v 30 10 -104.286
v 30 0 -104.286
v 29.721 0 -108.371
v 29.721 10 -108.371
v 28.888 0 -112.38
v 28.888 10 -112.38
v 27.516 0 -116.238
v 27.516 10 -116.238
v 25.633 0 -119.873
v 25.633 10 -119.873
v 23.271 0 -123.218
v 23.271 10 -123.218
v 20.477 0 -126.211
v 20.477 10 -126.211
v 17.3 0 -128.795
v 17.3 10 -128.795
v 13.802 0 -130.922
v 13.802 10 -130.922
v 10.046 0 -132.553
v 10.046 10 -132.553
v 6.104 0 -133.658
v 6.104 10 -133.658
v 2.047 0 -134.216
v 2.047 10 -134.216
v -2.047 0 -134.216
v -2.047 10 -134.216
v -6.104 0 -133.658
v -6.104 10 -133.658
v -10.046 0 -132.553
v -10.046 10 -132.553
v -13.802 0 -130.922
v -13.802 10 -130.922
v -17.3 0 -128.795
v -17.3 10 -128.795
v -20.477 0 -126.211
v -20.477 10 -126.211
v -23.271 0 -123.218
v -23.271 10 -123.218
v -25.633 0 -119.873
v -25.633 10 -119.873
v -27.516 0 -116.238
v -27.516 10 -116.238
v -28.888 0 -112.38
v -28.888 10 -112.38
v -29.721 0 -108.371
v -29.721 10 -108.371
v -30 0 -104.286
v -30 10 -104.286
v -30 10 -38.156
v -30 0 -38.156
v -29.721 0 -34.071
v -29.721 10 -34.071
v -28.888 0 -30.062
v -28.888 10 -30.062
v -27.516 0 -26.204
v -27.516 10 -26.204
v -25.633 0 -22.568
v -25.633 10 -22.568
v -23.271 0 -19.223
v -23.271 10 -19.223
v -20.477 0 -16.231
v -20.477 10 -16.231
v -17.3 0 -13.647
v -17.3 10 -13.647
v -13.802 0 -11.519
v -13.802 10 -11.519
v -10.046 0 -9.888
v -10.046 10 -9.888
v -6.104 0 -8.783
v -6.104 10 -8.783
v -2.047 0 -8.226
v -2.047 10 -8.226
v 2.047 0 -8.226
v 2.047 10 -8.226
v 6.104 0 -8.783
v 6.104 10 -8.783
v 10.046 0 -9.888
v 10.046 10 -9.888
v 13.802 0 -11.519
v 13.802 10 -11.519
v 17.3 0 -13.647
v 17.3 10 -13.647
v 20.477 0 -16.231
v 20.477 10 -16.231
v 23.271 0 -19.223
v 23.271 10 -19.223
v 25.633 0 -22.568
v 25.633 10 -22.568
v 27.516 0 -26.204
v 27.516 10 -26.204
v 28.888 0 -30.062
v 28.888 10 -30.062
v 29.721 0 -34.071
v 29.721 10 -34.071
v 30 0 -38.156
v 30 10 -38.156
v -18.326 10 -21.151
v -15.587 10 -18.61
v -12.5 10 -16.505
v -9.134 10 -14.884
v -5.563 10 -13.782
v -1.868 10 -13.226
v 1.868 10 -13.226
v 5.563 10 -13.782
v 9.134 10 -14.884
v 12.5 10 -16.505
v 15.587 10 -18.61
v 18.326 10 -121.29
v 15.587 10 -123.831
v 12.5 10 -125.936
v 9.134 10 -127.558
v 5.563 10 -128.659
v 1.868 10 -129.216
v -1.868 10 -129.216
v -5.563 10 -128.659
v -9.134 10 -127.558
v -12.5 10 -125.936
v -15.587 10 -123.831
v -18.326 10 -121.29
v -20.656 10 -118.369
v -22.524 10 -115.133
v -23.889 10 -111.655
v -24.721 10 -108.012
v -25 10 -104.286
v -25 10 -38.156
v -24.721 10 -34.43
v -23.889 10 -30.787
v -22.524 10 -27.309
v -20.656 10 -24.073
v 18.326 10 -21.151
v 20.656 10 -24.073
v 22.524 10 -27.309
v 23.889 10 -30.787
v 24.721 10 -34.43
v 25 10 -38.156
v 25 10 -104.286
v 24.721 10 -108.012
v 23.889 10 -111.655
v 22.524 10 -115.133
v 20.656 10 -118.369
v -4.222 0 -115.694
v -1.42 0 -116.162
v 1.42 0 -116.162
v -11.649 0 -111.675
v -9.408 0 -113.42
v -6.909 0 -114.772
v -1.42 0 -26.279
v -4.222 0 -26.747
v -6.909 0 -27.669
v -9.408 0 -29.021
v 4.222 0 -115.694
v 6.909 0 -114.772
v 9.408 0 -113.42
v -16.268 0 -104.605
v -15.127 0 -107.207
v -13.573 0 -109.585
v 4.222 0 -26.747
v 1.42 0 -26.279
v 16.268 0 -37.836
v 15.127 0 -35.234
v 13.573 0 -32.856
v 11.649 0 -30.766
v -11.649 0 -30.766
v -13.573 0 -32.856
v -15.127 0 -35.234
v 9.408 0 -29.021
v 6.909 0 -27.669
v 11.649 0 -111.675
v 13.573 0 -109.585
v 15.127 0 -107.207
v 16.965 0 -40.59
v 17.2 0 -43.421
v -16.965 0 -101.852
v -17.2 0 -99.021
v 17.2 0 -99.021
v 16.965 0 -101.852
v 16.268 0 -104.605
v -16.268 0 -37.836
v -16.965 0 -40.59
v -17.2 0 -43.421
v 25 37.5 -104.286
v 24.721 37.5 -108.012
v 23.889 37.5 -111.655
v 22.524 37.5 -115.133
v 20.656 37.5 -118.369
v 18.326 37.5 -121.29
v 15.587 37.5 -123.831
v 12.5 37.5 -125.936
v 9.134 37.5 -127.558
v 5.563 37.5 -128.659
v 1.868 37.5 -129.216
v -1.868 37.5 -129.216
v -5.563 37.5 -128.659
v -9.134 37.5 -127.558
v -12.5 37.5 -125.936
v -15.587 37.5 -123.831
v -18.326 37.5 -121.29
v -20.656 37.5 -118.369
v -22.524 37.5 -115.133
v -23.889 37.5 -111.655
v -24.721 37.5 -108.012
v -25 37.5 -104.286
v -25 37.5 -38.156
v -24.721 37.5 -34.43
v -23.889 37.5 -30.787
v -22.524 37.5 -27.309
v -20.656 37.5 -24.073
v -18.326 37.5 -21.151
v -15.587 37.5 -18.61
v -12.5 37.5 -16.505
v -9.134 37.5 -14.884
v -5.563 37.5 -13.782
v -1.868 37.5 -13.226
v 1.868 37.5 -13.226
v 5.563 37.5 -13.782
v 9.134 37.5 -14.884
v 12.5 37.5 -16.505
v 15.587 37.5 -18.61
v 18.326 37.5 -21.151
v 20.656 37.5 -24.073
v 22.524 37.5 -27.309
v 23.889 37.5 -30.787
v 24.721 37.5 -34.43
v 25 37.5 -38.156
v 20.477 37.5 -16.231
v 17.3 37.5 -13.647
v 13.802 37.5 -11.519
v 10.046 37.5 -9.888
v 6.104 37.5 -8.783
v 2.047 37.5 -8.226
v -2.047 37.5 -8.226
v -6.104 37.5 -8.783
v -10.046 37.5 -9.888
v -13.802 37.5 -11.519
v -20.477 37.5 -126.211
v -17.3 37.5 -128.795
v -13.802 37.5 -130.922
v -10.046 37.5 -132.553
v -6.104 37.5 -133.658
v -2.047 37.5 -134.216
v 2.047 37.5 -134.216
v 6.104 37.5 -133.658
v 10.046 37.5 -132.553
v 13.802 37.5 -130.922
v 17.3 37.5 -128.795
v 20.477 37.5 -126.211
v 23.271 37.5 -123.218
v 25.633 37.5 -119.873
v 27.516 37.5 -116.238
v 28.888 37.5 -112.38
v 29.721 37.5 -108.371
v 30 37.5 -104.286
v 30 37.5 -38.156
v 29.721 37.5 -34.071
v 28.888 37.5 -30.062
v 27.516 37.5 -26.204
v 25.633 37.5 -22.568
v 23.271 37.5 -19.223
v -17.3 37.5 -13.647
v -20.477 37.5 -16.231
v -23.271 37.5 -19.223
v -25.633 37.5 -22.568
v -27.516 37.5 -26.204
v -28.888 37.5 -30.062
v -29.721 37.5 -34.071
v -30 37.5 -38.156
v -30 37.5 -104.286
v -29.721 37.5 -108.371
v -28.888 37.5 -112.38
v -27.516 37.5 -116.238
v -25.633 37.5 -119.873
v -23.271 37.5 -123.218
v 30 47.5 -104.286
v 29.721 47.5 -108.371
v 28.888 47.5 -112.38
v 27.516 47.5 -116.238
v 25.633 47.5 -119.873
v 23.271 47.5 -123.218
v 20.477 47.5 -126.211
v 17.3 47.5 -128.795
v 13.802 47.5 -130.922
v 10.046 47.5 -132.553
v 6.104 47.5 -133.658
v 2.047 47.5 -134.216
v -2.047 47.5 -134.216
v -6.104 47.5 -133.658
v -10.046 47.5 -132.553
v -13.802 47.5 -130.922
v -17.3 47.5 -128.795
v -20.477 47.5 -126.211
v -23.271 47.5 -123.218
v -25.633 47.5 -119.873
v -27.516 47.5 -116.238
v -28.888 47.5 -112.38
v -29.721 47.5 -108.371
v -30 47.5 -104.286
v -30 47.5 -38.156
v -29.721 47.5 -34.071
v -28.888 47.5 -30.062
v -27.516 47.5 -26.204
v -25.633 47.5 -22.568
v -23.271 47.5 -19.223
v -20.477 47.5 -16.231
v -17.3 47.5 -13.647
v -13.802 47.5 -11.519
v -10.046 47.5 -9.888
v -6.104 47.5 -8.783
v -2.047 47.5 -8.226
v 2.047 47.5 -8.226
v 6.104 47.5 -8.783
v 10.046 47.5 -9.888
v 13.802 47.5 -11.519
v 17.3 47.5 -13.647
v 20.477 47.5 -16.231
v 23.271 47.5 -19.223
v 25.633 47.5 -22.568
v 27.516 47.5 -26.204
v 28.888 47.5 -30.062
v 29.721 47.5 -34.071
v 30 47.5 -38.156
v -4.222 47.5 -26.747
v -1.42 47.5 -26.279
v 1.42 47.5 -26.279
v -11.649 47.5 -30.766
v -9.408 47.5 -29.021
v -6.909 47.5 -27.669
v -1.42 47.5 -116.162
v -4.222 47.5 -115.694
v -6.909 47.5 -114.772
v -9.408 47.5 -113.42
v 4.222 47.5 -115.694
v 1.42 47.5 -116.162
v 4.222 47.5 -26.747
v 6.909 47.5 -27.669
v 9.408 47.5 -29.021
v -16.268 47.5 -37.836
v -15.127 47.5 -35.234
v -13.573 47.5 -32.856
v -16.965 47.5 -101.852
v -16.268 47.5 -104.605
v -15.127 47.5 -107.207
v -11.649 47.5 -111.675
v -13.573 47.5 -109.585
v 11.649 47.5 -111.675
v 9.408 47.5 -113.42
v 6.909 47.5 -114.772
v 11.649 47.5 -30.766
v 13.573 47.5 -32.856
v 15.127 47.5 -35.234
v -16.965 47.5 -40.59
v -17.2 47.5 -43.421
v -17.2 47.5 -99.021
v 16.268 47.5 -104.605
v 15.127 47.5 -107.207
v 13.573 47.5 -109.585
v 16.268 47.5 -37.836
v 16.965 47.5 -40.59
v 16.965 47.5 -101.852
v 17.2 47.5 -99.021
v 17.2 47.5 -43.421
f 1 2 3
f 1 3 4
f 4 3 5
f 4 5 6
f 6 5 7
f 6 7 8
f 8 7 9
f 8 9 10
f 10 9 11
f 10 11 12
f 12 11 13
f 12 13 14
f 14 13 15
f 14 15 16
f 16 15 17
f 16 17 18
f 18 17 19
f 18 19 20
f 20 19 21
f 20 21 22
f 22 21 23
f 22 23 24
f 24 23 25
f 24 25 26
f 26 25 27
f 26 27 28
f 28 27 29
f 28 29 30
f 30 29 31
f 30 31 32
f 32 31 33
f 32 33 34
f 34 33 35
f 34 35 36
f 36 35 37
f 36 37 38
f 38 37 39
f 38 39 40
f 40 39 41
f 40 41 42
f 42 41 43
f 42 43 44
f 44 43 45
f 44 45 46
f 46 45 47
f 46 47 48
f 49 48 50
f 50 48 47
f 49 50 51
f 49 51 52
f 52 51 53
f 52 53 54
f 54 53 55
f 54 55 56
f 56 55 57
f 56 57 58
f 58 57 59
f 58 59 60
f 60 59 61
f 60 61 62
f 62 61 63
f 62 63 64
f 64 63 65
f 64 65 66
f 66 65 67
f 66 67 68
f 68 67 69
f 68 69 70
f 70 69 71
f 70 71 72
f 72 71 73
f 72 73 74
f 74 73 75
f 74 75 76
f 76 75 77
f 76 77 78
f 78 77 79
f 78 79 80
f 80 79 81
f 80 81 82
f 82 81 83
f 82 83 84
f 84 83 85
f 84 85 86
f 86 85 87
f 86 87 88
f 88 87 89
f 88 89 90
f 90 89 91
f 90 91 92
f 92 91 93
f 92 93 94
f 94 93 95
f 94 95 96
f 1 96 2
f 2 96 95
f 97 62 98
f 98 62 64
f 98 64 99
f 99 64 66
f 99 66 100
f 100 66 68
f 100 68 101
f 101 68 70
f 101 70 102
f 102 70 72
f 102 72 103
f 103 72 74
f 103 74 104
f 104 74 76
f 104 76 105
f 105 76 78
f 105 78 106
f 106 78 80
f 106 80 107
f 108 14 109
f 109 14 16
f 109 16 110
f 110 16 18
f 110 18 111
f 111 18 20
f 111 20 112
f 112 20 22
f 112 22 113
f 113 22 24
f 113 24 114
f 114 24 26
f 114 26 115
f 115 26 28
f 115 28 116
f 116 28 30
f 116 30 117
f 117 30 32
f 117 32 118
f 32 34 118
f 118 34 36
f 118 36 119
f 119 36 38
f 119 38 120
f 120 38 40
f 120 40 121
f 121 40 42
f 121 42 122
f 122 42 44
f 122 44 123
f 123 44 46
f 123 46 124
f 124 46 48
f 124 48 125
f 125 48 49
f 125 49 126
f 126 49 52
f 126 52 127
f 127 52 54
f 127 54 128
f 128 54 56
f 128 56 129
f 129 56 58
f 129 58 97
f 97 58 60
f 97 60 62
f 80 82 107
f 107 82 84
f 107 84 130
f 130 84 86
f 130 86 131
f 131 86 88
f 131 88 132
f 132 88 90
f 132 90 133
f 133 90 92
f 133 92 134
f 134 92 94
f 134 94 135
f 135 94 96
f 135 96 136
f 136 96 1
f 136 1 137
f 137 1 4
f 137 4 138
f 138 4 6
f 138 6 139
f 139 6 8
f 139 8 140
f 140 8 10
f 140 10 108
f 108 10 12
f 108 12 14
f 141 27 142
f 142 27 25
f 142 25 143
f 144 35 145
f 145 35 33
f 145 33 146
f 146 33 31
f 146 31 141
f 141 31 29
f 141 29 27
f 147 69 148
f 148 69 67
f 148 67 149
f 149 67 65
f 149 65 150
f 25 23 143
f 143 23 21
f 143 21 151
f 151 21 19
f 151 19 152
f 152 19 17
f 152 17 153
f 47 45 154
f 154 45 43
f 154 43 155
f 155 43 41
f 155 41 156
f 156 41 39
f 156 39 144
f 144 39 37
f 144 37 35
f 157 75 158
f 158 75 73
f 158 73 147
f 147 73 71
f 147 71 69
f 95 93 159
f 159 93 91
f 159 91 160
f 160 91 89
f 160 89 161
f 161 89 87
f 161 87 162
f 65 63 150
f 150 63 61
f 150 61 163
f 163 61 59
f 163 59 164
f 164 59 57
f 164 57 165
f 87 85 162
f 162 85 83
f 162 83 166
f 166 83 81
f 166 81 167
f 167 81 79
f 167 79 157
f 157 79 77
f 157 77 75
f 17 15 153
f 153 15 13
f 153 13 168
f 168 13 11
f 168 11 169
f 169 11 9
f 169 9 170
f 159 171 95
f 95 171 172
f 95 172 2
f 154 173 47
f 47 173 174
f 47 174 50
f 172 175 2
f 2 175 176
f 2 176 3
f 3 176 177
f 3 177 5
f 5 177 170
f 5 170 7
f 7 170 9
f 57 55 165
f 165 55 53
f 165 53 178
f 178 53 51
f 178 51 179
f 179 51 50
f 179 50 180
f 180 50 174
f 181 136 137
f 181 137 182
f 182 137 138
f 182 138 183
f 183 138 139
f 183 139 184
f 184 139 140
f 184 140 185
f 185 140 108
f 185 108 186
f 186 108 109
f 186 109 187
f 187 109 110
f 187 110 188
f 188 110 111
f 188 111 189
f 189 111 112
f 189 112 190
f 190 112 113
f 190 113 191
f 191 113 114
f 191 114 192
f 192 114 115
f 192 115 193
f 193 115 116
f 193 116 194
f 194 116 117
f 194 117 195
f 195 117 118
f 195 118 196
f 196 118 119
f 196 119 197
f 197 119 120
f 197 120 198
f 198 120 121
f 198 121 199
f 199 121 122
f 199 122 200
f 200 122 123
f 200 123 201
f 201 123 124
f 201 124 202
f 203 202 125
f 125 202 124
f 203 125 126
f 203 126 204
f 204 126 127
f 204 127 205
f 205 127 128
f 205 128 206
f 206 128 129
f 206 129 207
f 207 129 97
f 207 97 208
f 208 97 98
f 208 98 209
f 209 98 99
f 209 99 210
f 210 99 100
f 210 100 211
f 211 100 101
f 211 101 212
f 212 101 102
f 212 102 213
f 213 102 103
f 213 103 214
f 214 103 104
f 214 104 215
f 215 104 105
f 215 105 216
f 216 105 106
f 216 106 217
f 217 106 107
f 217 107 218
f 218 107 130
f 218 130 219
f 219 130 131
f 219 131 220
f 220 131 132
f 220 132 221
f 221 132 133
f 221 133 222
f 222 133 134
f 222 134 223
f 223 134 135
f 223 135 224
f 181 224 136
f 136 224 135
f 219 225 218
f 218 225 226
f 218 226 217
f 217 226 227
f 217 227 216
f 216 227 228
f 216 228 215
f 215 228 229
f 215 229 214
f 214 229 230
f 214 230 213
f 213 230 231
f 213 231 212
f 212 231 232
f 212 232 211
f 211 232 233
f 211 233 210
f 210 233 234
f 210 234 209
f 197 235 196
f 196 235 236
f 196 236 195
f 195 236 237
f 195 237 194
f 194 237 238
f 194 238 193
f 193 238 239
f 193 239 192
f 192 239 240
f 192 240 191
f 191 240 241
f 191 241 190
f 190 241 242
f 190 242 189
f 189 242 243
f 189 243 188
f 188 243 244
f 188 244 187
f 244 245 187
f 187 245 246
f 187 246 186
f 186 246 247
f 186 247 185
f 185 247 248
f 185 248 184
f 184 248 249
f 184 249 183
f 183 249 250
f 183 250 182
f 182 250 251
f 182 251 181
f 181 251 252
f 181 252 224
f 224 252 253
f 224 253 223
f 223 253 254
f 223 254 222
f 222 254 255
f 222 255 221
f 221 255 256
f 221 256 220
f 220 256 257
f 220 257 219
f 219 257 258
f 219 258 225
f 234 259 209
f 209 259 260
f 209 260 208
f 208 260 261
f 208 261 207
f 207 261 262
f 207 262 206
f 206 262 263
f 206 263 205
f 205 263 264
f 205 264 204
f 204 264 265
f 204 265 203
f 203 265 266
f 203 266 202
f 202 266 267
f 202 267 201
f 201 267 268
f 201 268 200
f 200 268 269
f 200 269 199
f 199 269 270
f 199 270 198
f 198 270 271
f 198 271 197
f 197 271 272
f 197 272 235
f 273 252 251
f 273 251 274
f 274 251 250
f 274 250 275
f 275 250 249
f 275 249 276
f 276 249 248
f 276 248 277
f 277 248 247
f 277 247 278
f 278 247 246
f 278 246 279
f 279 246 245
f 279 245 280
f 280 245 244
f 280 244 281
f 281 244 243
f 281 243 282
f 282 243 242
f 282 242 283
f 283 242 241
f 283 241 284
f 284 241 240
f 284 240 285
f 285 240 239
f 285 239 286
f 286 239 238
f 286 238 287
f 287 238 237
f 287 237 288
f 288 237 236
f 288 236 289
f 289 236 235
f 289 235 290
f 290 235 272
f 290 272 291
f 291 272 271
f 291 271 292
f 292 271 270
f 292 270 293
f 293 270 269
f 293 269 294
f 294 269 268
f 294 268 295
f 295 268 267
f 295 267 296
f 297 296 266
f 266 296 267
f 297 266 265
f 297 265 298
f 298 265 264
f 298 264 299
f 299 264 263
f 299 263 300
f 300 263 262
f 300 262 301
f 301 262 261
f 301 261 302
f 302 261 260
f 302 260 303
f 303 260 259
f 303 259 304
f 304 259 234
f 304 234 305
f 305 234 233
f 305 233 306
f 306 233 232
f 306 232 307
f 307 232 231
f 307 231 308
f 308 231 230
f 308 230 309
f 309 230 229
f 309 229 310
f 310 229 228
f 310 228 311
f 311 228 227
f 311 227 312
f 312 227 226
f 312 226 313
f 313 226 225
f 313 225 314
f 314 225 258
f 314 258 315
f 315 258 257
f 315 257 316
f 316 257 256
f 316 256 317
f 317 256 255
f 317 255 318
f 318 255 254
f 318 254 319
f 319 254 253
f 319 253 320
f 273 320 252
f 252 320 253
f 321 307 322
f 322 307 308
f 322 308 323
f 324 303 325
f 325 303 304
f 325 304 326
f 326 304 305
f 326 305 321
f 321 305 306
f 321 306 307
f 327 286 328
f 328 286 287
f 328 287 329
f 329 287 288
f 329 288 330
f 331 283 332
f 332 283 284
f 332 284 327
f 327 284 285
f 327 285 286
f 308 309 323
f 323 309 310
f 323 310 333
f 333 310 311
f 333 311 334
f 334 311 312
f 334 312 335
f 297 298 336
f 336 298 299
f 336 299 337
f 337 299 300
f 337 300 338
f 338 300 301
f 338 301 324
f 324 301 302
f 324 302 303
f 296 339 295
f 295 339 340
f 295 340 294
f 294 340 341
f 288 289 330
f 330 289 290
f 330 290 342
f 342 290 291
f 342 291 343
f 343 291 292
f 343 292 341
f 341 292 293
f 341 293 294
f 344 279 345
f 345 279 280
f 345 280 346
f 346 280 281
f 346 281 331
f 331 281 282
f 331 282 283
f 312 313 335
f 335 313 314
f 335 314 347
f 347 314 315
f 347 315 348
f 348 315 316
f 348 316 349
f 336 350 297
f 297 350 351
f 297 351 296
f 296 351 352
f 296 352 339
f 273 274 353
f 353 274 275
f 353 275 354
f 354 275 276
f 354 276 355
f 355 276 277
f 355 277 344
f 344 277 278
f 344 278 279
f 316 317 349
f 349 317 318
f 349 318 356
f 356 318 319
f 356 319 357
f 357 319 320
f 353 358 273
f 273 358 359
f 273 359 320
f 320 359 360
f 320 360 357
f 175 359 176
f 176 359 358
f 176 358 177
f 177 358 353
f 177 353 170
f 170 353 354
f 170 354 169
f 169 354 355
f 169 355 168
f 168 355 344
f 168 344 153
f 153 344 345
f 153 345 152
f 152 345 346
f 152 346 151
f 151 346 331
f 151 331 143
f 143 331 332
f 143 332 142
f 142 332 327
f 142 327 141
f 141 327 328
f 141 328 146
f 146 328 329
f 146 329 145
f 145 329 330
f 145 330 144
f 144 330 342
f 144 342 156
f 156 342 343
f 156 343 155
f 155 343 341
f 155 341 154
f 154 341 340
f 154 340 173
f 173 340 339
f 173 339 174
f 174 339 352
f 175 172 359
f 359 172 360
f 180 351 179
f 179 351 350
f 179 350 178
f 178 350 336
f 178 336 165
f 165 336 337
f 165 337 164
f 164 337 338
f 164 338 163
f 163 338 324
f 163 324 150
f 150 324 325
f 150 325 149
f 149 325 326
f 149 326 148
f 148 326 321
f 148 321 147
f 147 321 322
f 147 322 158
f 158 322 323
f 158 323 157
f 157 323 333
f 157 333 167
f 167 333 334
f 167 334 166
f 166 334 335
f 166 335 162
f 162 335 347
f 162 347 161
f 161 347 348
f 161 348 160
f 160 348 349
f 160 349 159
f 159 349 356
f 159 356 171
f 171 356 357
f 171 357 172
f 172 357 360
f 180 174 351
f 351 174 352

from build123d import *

# Parameters (mm, degrees)
BOSS_EXTRUDE1_DEPTH     = 10
BOSS_EXTRUDE2_DEPTH     = 27.5
BOSS_EXTRUDE3_DEPTH     = 10
CUT_EXTRUDE1_DEPTH      = 146.564029734
CUT_EXTRUDE1_DEPTH_BACK = 146.564029734


with BuildPart() as part:
    # Sketch1 → Boss-Extrude1 (new body)
    with BuildSketch(Plane(origin=(0, 0, 0), x_dir=(1, 0, 0), z_dir=(0, 1, 0))):
        with BuildLine():
            Line((-30, 104.285653561), (-30, 38.155653561))
            ThreePointArc((-30, 38.155653561), (0, 8.155653561), (30, 38.155653561))
            Line((30, 38.155653561), (30, 104.285653561))
            ThreePointArc((30, 104.285653561), (0, 134.285653561), (-30, 104.285653561))
        make_face()
    extrude(amount=BOSS_EXTRUDE1_DEPTH)

    # Sketch2 → Boss-Extrude2 (add)
    with BuildSketch(Plane(origin=(0, 10, 0), x_dir=(1, 0, 0), z_dir=(0, 1, 0))):
        with BuildLine():
            Line((-25, 104.285653561), (-25, 38.155653561))
            ThreePointArc((-25, 38.155653561), (0, 13.155653561), (25, 38.155653561))
            Line((25, 38.155653561), (25, 104.285653561))
            ThreePointArc((25, 104.285653561), (0, 129.285653561), (-25, 104.285653561))
        make_face()
    extrude(amount=BOSS_EXTRUDE2_DEPTH)

    # Sketch3 → Boss-Extrude3 (add)
    with BuildSketch(Plane(origin=(0, 37.5, 0), x_dir=(1, 0, 0), z_dir=(0, 1, 0))):
        with BuildLine():
            Line((-30, 104.285653561), (-30, 38.155653561))
            ThreePointArc((-30, 38.155653561), (0, 8.155653561), (30, 38.155653561))
            Line((30, 38.155653561), (30, 104.285653561))
            ThreePointArc((30, 104.285653561), (0, 134.285653561), (-30, 104.285653561))
        make_face()
    extrude(amount=BOSS_EXTRUDE3_DEPTH)

    # Sketch4 → Cut-Extrude1 (cut, two sides: drawn at the far end of the back side and taken through both)
    with BuildSketch(Plane(origin=(0, 47.5, 0), x_dir=(1, 0, 0), z_dir=(0, 1, 0)).offset(-CUT_EXTRUDE1_DEPTH_BACK)):
        with BuildLine():
            Line((-17.2, 99.020653561), (-17.2, 43.420653561))
            ThreePointArc((-17.2, 43.420653561), (0, 26.220653561), (17.2, 43.420653561))
            Line((17.2, 43.420653561), (17.2, 99.020653561))
            ThreePointArc((17.2, 99.020653561), (0, 116.220653561), (-17.2, 99.020653561))
        make_face()
    extrude(amount=CUT_EXTRUDE1_DEPTH + CUT_EXTRUDE1_DEPTH_BACK, mode=Mode.SUBTRACT)


solid = part.part
